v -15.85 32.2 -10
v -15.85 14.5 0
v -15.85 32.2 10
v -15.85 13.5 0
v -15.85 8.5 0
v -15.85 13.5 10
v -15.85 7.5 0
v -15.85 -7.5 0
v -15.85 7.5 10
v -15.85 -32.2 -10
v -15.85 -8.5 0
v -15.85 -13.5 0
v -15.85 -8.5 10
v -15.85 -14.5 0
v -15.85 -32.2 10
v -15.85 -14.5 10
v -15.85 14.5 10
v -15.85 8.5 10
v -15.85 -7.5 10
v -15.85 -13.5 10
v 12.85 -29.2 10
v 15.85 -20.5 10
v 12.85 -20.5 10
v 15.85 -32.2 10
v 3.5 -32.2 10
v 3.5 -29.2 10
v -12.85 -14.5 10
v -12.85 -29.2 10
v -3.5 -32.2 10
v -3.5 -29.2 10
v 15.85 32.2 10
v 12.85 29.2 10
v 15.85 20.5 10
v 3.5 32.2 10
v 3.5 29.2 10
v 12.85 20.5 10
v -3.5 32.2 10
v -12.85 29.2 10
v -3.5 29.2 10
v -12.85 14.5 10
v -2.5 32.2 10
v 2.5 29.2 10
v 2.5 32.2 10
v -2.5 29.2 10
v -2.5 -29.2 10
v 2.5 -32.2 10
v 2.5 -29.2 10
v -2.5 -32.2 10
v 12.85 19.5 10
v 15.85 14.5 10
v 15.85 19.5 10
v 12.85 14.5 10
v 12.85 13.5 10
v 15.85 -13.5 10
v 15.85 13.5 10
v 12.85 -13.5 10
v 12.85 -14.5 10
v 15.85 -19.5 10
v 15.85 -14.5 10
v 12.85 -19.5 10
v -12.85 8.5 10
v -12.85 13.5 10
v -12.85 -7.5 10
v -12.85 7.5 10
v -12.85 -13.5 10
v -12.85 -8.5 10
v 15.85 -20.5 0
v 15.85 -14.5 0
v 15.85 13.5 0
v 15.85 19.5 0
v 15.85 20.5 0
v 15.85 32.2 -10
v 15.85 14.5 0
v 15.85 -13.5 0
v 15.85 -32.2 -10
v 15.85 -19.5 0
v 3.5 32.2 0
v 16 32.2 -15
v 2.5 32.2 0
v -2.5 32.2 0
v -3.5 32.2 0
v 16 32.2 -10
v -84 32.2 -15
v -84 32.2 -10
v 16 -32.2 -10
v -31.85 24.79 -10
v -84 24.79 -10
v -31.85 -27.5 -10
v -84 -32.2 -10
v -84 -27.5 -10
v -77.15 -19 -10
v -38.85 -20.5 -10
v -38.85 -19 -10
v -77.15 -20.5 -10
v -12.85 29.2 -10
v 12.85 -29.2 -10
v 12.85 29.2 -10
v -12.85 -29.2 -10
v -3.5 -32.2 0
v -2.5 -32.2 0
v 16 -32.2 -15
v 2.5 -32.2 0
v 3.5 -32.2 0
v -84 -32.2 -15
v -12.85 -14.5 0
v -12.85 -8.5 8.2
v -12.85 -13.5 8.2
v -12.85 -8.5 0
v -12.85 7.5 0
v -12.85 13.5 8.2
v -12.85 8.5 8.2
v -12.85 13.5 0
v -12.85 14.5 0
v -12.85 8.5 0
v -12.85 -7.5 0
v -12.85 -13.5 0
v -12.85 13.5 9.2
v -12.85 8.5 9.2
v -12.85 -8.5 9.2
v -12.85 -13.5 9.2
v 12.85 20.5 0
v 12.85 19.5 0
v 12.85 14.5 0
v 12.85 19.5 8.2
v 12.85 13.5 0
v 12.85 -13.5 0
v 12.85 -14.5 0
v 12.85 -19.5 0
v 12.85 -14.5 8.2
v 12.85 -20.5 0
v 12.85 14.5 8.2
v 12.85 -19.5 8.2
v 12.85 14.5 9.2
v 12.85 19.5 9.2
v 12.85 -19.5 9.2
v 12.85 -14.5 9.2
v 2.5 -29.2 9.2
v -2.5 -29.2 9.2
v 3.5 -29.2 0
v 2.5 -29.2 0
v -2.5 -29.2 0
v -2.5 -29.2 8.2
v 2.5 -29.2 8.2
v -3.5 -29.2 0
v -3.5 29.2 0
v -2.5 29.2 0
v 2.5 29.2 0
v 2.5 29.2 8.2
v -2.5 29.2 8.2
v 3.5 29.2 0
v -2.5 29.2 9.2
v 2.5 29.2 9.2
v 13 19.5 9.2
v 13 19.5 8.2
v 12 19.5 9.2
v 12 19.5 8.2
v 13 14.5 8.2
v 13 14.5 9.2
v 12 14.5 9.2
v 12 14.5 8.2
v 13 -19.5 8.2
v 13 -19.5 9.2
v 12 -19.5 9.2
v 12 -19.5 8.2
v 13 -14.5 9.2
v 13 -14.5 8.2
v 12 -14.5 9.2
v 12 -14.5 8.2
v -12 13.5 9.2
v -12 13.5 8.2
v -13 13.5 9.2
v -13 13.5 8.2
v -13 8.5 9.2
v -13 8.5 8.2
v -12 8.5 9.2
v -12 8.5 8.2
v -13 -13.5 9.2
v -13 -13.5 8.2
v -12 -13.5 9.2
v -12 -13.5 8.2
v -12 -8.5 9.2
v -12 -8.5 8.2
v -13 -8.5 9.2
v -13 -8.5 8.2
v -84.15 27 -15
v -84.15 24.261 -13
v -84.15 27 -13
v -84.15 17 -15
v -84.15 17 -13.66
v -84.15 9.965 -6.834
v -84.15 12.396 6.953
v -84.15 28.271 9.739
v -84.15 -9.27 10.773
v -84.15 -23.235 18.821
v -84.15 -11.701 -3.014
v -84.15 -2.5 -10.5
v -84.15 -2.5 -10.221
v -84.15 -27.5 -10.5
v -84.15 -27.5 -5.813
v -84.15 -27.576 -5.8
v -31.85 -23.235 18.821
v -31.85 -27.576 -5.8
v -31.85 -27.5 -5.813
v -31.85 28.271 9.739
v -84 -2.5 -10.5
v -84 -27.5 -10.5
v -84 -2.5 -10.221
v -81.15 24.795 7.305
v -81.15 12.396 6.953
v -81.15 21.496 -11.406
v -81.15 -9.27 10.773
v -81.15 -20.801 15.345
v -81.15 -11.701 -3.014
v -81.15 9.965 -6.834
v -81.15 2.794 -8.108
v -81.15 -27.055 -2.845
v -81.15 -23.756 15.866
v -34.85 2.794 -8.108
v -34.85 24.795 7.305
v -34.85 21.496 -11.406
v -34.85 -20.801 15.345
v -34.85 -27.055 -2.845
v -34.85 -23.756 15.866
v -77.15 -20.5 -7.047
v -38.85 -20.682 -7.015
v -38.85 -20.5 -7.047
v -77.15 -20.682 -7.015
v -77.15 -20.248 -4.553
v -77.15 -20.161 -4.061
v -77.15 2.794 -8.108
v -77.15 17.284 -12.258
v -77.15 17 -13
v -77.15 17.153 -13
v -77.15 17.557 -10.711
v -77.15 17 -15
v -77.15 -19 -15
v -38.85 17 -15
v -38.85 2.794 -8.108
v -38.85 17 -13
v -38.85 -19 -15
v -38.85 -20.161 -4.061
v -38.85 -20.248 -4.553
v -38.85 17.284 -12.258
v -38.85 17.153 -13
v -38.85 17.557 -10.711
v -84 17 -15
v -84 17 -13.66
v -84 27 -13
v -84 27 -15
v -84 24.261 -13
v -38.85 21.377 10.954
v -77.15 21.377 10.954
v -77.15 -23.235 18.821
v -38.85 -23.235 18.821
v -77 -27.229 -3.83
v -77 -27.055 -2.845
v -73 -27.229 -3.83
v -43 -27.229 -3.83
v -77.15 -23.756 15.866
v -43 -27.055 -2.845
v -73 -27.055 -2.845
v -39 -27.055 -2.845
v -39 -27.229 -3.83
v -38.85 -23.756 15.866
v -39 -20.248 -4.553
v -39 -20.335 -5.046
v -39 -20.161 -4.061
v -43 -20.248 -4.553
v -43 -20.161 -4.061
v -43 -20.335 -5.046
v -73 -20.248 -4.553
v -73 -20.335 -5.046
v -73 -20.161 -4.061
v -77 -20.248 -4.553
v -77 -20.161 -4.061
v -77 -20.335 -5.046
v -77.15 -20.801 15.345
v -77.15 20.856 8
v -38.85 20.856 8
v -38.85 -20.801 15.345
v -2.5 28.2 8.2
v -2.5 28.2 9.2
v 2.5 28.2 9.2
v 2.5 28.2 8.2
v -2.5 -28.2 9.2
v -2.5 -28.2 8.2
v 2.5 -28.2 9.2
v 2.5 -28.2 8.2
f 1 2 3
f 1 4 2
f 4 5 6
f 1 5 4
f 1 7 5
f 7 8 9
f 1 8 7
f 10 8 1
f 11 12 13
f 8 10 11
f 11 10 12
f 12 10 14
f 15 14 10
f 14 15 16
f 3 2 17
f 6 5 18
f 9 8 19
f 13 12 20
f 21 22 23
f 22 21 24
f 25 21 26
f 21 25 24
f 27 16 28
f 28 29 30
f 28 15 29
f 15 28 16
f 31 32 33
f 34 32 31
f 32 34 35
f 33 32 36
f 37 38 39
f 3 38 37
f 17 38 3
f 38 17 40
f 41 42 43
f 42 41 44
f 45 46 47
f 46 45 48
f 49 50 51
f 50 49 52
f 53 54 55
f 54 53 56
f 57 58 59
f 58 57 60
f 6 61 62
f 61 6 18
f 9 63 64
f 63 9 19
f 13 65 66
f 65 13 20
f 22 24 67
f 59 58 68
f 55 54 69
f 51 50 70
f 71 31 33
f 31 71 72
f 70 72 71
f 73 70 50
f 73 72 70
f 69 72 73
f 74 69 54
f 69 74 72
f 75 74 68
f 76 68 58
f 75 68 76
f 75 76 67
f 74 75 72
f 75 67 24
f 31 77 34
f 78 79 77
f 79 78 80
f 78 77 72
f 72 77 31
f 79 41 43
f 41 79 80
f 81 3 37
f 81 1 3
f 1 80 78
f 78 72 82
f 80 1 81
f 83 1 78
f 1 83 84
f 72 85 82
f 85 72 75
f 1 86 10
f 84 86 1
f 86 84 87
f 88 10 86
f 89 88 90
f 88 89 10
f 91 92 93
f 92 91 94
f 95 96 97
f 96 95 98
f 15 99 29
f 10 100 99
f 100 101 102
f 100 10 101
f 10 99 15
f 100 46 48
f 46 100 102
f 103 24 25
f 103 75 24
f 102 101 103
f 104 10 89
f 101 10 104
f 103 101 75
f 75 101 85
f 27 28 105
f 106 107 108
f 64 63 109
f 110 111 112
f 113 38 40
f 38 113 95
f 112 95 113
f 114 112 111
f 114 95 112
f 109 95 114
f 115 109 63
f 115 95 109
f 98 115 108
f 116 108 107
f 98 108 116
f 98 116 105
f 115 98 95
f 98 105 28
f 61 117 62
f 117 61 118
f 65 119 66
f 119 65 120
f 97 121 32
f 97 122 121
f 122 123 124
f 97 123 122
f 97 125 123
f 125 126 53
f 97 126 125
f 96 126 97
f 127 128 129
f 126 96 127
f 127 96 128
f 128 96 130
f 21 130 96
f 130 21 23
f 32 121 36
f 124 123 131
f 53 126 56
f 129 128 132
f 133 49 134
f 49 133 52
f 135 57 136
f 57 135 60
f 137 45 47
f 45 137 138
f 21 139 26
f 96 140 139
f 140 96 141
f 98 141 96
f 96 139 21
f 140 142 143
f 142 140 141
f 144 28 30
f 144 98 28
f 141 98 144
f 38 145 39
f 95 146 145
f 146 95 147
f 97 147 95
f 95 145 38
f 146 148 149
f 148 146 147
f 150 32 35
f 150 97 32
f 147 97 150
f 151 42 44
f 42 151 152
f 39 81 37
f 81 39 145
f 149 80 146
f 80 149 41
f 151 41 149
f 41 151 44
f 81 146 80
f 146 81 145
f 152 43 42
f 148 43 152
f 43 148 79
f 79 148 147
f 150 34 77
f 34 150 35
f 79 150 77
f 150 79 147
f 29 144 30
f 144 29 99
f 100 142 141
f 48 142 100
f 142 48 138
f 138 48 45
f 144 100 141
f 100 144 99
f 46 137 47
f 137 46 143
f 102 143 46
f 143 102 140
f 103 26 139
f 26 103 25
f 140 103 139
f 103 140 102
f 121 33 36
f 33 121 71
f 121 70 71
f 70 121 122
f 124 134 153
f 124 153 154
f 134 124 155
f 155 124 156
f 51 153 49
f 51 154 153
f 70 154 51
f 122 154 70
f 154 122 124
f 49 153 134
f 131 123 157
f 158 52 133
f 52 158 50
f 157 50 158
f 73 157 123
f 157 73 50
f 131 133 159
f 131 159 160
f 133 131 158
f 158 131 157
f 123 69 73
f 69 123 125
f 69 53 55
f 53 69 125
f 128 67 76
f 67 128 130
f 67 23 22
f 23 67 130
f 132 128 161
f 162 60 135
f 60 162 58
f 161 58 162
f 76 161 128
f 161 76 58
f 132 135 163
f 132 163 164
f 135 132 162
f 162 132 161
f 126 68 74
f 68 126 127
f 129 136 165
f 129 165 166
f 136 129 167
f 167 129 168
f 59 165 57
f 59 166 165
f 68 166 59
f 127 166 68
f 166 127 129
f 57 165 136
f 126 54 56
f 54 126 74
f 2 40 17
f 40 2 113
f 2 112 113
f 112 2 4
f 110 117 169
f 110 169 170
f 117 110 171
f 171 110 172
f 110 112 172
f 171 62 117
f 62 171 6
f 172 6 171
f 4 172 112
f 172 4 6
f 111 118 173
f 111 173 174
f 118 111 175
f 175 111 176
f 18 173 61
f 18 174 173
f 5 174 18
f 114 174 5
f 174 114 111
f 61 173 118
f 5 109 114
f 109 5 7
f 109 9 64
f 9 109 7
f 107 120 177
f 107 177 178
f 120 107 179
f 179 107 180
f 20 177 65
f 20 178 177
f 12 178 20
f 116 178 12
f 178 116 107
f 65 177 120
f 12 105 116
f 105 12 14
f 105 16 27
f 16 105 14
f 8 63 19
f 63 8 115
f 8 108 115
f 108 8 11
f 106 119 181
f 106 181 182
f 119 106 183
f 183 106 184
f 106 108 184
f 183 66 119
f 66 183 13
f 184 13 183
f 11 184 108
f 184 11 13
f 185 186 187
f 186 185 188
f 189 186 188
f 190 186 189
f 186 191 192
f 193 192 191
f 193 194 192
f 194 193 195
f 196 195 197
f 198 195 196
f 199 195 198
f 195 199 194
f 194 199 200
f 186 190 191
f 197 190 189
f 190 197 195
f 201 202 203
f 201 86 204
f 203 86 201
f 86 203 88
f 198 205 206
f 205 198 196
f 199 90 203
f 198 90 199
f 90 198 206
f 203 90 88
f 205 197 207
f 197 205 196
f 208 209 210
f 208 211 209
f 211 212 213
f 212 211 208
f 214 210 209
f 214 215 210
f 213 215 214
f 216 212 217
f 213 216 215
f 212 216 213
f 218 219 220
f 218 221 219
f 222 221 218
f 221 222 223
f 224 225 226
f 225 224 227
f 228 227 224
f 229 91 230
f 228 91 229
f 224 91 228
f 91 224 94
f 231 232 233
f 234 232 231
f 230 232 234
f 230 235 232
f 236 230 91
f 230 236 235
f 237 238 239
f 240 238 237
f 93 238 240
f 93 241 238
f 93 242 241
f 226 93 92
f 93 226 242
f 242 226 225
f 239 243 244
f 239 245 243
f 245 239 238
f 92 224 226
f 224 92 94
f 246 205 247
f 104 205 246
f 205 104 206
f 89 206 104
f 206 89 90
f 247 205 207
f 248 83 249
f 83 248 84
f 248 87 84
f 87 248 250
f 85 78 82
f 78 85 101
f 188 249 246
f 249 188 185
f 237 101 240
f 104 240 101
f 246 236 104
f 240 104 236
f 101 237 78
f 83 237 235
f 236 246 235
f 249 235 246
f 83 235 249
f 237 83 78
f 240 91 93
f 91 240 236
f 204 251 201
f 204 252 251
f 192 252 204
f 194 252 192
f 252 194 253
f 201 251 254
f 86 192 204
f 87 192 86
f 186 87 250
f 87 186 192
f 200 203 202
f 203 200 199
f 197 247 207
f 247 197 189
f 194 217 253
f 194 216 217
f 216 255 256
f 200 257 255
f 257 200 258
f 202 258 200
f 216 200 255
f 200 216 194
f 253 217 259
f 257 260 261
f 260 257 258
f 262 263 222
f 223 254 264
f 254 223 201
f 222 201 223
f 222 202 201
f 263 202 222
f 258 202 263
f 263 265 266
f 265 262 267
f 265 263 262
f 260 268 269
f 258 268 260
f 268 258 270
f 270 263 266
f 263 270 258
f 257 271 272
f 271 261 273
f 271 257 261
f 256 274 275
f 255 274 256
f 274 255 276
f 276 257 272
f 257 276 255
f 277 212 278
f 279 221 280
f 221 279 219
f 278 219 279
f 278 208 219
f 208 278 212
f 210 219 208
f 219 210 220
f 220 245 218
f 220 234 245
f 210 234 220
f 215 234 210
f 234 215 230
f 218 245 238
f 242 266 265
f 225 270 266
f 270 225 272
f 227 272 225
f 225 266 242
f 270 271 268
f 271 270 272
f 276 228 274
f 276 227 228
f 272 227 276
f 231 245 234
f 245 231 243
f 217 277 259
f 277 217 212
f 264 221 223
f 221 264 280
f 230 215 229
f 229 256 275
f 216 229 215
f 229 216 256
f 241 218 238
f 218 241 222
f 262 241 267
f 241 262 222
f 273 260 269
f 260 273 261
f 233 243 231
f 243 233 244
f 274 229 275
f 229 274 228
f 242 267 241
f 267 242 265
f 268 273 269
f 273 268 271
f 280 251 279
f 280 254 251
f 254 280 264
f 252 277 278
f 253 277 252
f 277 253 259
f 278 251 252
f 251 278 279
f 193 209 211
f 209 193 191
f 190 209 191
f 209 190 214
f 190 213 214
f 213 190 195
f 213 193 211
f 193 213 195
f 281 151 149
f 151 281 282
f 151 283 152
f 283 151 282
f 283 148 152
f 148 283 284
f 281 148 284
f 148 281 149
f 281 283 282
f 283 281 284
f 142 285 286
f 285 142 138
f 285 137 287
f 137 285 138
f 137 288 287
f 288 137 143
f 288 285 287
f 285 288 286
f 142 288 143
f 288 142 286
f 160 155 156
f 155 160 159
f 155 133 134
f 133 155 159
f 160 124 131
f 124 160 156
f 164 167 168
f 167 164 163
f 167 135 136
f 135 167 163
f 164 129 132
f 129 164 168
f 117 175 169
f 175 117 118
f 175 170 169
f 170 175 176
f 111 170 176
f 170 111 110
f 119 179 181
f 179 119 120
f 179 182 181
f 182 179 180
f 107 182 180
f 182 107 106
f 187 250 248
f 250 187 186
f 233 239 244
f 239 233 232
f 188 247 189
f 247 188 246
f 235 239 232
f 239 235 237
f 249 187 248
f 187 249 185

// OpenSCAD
//$fn=120;
difference(){
     cube([31.7,64.4,20],true);
     translate([0,0,0])cube([25.7,58.4,20],true);
     translate([-3, 31.7,5])cube([1,6,10],true);
     translate([ 3, 31.7,5])cube([1,6,10],true);
     translate([-3,-31.7,5])cube([1,6,10],true);
     translate([ 3,-31.7,5])cube([1,6,10],true);
     translate([ 15,  20,5])cube([6,1,10],true);
     translate([ 15,  14,5])cube([6,1,10],true);
     translate([ 15, -20,5])cube([6,1,10],true);
     translate([ 15, -14,5])cube([6,1,10],true);
     translate([-15,  14,5])cube([6,1,10],true);
     translate([-15,  8,5])cube([6,1,10],true);
     translate([-15, -14,5])cube([6,1,10],true);
     translate([-15, -8,5])cube([6,1,10],true);
}
translate([0, 28.7,8.7])cube([5,1,1],true);
translate([0,-28.7,8.7])cube([5,1,1],true);
translate([ 12.5,17,8.7])cube([1,5,1],true);
translate([12.5,-17,8.7])cube([1,5,1],true);
translate([-12.5,11,8.7])cube([1,5,1],true);
translate([-12.5,-11,8.7])cube([1,5,1],true);
difference(){
     translate([-34,0,-12.5])cube([100,64.4,5],true);
     translate([-58,0,-12.5])cube([38.3,38,5],true);  
     translate([-58,18,-10])cube([46.3,10,3],true); 
}
difference(){
     translate([-58,-15,-8])cube([52.3,25,5],true);
     rotate([-10,0,0]) translate([-58,-15,-8])cube([46.3,46.3,5],true); 
     translate([-58,-8,-8])cube([38.3,25,5],true);
    
}
translate([-58,22,-14])cube([52.3,10,2],true);
difference(){
     rotate([-10,0,0]) translate([-58,0,2])cube([52.3,52.3,25],true);
     rotate([-10,0,0]) translate([-41,-20,-7.5])cube([4,20,2],true);
     rotate([-10,0,0]) translate([-75,-20,-7.5])cube([4,20,2],true);
     rotate([-10,0,0]) translate([-58,0,2])cube([46.3,46.3,19],true);
     rotate([-10,0,0]) translate([-58,0,-8])cube([38.3,38.3,5],true); 
     rotate([-10,0,0]) translate([-58,-10,2])cube([46.3,46.3,19],true);
     rotate([-10,0,0]) translate([-58,0,-8])cube([38.3,38.3,19],true);
     rotate([-10,0,0]) translate([-58,0,12])cube([38.3,38.3,19],true);
     rotate([-10,0,0]) translate([-58,-10,12])cube([38.3,38.3,19],true);
     rotate([-10,0,0]) translate([-84,0,2])cube([22,22,14],true);
}
